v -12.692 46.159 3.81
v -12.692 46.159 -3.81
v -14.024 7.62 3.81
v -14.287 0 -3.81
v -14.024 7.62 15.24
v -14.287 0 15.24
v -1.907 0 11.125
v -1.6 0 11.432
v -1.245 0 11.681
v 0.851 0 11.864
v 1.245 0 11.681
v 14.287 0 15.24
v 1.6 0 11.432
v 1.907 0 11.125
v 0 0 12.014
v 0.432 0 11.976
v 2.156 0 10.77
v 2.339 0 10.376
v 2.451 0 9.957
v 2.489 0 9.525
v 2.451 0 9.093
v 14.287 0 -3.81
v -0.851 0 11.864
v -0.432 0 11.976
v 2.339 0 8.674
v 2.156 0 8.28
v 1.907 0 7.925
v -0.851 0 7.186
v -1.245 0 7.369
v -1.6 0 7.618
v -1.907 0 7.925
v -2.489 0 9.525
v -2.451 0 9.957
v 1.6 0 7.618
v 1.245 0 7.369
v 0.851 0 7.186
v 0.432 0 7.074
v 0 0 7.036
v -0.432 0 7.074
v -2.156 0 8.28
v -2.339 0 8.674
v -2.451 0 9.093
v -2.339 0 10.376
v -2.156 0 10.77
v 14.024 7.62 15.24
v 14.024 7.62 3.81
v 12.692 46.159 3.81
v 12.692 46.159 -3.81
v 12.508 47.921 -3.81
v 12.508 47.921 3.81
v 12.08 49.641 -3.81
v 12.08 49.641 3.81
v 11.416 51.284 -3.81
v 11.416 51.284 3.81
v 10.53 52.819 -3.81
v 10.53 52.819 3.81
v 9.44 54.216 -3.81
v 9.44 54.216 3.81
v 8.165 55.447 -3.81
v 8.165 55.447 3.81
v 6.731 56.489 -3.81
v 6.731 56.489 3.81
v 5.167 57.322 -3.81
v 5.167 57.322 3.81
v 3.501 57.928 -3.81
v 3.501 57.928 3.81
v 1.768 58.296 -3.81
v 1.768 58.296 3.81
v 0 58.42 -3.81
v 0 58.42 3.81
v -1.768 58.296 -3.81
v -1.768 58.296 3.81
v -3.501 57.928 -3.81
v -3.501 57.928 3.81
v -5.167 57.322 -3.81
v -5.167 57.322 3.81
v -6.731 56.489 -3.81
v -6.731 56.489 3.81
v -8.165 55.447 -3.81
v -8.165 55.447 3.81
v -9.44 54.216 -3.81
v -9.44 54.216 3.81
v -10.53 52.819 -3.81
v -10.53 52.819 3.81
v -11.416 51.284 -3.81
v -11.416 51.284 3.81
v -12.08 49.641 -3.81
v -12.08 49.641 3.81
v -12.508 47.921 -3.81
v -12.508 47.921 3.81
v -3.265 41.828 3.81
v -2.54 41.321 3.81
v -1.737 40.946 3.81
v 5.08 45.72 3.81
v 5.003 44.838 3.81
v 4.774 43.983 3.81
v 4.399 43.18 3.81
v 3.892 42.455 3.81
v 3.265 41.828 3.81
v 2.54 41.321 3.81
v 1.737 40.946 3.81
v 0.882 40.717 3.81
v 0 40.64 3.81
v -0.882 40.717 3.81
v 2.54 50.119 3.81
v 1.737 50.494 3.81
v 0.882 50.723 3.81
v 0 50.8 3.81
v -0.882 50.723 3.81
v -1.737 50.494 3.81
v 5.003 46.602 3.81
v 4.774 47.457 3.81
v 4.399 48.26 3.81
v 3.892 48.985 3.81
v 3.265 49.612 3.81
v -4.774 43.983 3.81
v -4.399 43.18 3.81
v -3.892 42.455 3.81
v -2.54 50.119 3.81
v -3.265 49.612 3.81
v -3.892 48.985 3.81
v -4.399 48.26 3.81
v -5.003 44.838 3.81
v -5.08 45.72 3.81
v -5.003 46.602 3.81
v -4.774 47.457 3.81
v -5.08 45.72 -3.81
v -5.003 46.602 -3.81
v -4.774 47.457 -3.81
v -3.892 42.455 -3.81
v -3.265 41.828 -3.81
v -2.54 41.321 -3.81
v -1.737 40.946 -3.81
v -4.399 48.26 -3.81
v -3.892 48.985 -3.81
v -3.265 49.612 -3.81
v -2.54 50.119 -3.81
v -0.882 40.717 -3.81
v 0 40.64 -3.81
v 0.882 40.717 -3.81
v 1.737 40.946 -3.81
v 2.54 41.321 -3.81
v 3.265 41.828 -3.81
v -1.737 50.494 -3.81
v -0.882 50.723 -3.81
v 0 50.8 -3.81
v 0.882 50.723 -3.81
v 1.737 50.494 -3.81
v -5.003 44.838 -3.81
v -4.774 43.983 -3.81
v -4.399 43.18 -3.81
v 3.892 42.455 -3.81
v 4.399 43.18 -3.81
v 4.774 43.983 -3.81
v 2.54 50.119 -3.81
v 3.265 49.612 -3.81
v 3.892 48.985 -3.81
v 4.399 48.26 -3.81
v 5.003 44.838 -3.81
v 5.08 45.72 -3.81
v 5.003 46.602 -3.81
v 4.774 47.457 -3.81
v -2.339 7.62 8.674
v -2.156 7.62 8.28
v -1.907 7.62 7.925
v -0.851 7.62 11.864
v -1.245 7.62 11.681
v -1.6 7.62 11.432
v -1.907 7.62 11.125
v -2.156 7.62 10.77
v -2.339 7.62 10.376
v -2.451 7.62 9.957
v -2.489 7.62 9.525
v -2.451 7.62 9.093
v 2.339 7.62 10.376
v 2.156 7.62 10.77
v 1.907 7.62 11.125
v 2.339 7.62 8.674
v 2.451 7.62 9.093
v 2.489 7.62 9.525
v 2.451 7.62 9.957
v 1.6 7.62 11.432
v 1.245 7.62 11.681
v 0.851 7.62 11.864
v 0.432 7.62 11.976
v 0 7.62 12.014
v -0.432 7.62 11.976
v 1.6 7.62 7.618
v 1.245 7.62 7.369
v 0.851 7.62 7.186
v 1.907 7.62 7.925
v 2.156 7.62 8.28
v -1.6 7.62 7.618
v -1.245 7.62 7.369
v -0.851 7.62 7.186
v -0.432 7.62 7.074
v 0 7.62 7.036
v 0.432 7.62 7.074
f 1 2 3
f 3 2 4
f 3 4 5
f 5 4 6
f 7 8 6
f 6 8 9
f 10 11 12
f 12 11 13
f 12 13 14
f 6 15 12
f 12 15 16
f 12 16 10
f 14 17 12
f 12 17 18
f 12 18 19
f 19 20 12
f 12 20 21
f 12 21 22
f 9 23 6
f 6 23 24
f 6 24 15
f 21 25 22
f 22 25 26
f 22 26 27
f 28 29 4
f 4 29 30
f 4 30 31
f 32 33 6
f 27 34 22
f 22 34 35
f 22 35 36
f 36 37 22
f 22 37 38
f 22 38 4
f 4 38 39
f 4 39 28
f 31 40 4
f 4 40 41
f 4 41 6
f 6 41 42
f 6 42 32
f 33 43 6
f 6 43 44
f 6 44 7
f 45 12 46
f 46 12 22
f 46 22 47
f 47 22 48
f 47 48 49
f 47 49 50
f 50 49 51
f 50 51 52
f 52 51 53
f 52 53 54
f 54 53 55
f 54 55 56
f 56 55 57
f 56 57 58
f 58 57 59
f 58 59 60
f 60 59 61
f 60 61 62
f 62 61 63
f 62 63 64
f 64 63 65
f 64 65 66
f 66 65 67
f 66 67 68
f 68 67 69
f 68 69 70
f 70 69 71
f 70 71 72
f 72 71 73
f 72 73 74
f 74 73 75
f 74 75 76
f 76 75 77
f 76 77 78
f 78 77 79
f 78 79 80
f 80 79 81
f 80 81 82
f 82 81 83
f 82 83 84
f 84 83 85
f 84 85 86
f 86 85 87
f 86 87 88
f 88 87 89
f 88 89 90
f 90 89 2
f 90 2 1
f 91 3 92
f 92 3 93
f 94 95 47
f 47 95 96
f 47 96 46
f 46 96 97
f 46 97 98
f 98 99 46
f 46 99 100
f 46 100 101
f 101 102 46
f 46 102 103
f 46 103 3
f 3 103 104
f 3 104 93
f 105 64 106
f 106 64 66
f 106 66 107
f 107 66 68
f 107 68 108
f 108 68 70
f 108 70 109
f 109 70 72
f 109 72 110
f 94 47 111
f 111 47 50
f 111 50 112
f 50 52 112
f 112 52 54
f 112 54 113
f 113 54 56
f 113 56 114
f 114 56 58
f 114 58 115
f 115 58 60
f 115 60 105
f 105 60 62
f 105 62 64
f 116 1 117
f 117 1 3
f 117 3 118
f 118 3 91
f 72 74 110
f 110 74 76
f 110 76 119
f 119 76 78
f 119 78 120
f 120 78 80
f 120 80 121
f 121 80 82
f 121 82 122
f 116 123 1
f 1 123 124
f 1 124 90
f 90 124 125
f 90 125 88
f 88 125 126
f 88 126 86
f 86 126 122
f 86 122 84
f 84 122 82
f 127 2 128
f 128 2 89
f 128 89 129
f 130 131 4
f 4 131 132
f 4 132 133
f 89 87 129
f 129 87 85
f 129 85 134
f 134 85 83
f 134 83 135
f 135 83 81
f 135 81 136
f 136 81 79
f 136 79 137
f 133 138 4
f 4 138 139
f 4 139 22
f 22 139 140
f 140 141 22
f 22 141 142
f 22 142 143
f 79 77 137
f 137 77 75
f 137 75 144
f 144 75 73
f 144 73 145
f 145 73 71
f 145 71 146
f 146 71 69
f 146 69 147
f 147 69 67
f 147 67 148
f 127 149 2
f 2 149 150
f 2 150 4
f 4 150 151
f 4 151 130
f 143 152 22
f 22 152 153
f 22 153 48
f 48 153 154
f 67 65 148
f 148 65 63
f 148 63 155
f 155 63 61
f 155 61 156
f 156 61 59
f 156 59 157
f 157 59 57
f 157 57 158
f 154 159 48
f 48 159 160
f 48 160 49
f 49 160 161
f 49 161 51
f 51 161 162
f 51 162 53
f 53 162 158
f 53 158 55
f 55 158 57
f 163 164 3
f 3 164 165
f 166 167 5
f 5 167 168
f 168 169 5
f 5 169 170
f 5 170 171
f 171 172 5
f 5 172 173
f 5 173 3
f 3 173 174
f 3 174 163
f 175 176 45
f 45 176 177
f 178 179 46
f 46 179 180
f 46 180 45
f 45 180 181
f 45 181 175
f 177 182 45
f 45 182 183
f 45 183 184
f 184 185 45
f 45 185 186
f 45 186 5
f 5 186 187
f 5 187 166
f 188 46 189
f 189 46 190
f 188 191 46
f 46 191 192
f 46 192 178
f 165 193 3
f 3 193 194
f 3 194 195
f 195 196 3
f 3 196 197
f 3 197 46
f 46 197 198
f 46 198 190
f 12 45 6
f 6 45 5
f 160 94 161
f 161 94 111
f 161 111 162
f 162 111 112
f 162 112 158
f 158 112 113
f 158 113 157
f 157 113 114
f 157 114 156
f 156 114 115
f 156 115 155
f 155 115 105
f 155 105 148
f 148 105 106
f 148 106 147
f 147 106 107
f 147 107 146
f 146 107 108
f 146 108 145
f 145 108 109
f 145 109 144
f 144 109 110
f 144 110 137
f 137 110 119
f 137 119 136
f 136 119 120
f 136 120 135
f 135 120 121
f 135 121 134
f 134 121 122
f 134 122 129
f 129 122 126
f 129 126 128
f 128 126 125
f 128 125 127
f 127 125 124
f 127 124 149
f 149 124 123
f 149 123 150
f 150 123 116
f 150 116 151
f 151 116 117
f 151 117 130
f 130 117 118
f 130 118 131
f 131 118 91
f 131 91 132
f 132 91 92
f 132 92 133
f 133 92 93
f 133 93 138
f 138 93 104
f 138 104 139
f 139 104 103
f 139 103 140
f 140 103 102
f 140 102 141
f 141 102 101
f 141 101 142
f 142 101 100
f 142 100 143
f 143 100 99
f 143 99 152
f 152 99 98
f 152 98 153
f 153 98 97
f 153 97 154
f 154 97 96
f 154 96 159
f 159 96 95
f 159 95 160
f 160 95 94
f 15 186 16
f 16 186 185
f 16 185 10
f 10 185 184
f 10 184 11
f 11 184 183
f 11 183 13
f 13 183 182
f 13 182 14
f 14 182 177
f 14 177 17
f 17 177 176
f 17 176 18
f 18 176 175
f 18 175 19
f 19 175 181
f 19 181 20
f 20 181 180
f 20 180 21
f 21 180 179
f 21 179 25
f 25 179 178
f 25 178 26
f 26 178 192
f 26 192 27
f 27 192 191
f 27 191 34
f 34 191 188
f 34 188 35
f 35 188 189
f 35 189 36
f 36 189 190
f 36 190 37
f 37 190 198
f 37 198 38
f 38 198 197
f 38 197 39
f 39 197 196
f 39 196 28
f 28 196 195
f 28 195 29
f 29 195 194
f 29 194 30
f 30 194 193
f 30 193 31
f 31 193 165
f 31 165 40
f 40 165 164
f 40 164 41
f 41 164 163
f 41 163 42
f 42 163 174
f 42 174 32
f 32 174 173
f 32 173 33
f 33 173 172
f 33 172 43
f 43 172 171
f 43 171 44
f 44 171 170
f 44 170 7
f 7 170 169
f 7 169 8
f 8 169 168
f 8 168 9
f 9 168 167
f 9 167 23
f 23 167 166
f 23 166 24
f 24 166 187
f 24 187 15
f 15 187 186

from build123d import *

# Parameters (mm, degrees)
BOSS_EXTRUDE1_DEPTH = 3.81
BOSS_EXTRUDE2_START = 3.81
BOSS_EXTRUDE2_DEPTH = 11.43
SKETCH3_R           = 5.08
CUT_EXTRUDE1_DEPTH  = 20
SKETCH4_R           = 2.4892
CUT_EXTRUDE2_DEPTH  = 20


with BuildPart() as part:
    # Sketch1 → Boss-Extrude1 (new, symmetric)
    with BuildSketch(Plane.XY):
        with BuildLine():
            Line((-14.2875, 0), (14.2875, 0))
            Line((14.2875, 0), (12.692423957, 46.158604709))
            ThreePointArc((12.692423957, 46.158604709), (0, 58.42), (-12.692423957, 46.158604709))
            Line((-12.692423957, 46.158604709), (-14.2875, 0))
        make_face()
    extrude(amount=BOSS_EXTRUDE1_DEPTH, both=True)

    # Sketch2 → Boss-Extrude2 (add)
    with BuildSketch(Plane.XY.offset(BOSS_EXTRUDE2_START)):
        Polygon((-14.2875, 0), (14.2875, 0), (14.024180094, 7.62), (-14.024180094, 7.62), align=None)
    extrude(amount=BOSS_EXTRUDE2_DEPTH)

    # Sketch3 → Cut-Extrude1 (cut, symmetric)
    with BuildSketch(Plane.XY):
        with Locations((0, 45.72)):
            Circle(SKETCH3_R)
    extrude(amount=CUT_EXTRUDE1_DEPTH, both=True, mode=Mode.SUBTRACT)

    # Sketch4 → Cut-Extrude2 (cut, symmetric)
    with BuildSketch(Plane(origin=(0, 0, 0), x_dir=(1, 0, 0), z_dir=(0, 1, 0))):
        with Locations(Location((0, -9.525, 0), (0, 0, 270))):
            Circle(SKETCH4_R)
    extrude(amount=CUT_EXTRUDE2_DEPTH, both=True, mode=Mode.SUBTRACT)


solid = part.part
